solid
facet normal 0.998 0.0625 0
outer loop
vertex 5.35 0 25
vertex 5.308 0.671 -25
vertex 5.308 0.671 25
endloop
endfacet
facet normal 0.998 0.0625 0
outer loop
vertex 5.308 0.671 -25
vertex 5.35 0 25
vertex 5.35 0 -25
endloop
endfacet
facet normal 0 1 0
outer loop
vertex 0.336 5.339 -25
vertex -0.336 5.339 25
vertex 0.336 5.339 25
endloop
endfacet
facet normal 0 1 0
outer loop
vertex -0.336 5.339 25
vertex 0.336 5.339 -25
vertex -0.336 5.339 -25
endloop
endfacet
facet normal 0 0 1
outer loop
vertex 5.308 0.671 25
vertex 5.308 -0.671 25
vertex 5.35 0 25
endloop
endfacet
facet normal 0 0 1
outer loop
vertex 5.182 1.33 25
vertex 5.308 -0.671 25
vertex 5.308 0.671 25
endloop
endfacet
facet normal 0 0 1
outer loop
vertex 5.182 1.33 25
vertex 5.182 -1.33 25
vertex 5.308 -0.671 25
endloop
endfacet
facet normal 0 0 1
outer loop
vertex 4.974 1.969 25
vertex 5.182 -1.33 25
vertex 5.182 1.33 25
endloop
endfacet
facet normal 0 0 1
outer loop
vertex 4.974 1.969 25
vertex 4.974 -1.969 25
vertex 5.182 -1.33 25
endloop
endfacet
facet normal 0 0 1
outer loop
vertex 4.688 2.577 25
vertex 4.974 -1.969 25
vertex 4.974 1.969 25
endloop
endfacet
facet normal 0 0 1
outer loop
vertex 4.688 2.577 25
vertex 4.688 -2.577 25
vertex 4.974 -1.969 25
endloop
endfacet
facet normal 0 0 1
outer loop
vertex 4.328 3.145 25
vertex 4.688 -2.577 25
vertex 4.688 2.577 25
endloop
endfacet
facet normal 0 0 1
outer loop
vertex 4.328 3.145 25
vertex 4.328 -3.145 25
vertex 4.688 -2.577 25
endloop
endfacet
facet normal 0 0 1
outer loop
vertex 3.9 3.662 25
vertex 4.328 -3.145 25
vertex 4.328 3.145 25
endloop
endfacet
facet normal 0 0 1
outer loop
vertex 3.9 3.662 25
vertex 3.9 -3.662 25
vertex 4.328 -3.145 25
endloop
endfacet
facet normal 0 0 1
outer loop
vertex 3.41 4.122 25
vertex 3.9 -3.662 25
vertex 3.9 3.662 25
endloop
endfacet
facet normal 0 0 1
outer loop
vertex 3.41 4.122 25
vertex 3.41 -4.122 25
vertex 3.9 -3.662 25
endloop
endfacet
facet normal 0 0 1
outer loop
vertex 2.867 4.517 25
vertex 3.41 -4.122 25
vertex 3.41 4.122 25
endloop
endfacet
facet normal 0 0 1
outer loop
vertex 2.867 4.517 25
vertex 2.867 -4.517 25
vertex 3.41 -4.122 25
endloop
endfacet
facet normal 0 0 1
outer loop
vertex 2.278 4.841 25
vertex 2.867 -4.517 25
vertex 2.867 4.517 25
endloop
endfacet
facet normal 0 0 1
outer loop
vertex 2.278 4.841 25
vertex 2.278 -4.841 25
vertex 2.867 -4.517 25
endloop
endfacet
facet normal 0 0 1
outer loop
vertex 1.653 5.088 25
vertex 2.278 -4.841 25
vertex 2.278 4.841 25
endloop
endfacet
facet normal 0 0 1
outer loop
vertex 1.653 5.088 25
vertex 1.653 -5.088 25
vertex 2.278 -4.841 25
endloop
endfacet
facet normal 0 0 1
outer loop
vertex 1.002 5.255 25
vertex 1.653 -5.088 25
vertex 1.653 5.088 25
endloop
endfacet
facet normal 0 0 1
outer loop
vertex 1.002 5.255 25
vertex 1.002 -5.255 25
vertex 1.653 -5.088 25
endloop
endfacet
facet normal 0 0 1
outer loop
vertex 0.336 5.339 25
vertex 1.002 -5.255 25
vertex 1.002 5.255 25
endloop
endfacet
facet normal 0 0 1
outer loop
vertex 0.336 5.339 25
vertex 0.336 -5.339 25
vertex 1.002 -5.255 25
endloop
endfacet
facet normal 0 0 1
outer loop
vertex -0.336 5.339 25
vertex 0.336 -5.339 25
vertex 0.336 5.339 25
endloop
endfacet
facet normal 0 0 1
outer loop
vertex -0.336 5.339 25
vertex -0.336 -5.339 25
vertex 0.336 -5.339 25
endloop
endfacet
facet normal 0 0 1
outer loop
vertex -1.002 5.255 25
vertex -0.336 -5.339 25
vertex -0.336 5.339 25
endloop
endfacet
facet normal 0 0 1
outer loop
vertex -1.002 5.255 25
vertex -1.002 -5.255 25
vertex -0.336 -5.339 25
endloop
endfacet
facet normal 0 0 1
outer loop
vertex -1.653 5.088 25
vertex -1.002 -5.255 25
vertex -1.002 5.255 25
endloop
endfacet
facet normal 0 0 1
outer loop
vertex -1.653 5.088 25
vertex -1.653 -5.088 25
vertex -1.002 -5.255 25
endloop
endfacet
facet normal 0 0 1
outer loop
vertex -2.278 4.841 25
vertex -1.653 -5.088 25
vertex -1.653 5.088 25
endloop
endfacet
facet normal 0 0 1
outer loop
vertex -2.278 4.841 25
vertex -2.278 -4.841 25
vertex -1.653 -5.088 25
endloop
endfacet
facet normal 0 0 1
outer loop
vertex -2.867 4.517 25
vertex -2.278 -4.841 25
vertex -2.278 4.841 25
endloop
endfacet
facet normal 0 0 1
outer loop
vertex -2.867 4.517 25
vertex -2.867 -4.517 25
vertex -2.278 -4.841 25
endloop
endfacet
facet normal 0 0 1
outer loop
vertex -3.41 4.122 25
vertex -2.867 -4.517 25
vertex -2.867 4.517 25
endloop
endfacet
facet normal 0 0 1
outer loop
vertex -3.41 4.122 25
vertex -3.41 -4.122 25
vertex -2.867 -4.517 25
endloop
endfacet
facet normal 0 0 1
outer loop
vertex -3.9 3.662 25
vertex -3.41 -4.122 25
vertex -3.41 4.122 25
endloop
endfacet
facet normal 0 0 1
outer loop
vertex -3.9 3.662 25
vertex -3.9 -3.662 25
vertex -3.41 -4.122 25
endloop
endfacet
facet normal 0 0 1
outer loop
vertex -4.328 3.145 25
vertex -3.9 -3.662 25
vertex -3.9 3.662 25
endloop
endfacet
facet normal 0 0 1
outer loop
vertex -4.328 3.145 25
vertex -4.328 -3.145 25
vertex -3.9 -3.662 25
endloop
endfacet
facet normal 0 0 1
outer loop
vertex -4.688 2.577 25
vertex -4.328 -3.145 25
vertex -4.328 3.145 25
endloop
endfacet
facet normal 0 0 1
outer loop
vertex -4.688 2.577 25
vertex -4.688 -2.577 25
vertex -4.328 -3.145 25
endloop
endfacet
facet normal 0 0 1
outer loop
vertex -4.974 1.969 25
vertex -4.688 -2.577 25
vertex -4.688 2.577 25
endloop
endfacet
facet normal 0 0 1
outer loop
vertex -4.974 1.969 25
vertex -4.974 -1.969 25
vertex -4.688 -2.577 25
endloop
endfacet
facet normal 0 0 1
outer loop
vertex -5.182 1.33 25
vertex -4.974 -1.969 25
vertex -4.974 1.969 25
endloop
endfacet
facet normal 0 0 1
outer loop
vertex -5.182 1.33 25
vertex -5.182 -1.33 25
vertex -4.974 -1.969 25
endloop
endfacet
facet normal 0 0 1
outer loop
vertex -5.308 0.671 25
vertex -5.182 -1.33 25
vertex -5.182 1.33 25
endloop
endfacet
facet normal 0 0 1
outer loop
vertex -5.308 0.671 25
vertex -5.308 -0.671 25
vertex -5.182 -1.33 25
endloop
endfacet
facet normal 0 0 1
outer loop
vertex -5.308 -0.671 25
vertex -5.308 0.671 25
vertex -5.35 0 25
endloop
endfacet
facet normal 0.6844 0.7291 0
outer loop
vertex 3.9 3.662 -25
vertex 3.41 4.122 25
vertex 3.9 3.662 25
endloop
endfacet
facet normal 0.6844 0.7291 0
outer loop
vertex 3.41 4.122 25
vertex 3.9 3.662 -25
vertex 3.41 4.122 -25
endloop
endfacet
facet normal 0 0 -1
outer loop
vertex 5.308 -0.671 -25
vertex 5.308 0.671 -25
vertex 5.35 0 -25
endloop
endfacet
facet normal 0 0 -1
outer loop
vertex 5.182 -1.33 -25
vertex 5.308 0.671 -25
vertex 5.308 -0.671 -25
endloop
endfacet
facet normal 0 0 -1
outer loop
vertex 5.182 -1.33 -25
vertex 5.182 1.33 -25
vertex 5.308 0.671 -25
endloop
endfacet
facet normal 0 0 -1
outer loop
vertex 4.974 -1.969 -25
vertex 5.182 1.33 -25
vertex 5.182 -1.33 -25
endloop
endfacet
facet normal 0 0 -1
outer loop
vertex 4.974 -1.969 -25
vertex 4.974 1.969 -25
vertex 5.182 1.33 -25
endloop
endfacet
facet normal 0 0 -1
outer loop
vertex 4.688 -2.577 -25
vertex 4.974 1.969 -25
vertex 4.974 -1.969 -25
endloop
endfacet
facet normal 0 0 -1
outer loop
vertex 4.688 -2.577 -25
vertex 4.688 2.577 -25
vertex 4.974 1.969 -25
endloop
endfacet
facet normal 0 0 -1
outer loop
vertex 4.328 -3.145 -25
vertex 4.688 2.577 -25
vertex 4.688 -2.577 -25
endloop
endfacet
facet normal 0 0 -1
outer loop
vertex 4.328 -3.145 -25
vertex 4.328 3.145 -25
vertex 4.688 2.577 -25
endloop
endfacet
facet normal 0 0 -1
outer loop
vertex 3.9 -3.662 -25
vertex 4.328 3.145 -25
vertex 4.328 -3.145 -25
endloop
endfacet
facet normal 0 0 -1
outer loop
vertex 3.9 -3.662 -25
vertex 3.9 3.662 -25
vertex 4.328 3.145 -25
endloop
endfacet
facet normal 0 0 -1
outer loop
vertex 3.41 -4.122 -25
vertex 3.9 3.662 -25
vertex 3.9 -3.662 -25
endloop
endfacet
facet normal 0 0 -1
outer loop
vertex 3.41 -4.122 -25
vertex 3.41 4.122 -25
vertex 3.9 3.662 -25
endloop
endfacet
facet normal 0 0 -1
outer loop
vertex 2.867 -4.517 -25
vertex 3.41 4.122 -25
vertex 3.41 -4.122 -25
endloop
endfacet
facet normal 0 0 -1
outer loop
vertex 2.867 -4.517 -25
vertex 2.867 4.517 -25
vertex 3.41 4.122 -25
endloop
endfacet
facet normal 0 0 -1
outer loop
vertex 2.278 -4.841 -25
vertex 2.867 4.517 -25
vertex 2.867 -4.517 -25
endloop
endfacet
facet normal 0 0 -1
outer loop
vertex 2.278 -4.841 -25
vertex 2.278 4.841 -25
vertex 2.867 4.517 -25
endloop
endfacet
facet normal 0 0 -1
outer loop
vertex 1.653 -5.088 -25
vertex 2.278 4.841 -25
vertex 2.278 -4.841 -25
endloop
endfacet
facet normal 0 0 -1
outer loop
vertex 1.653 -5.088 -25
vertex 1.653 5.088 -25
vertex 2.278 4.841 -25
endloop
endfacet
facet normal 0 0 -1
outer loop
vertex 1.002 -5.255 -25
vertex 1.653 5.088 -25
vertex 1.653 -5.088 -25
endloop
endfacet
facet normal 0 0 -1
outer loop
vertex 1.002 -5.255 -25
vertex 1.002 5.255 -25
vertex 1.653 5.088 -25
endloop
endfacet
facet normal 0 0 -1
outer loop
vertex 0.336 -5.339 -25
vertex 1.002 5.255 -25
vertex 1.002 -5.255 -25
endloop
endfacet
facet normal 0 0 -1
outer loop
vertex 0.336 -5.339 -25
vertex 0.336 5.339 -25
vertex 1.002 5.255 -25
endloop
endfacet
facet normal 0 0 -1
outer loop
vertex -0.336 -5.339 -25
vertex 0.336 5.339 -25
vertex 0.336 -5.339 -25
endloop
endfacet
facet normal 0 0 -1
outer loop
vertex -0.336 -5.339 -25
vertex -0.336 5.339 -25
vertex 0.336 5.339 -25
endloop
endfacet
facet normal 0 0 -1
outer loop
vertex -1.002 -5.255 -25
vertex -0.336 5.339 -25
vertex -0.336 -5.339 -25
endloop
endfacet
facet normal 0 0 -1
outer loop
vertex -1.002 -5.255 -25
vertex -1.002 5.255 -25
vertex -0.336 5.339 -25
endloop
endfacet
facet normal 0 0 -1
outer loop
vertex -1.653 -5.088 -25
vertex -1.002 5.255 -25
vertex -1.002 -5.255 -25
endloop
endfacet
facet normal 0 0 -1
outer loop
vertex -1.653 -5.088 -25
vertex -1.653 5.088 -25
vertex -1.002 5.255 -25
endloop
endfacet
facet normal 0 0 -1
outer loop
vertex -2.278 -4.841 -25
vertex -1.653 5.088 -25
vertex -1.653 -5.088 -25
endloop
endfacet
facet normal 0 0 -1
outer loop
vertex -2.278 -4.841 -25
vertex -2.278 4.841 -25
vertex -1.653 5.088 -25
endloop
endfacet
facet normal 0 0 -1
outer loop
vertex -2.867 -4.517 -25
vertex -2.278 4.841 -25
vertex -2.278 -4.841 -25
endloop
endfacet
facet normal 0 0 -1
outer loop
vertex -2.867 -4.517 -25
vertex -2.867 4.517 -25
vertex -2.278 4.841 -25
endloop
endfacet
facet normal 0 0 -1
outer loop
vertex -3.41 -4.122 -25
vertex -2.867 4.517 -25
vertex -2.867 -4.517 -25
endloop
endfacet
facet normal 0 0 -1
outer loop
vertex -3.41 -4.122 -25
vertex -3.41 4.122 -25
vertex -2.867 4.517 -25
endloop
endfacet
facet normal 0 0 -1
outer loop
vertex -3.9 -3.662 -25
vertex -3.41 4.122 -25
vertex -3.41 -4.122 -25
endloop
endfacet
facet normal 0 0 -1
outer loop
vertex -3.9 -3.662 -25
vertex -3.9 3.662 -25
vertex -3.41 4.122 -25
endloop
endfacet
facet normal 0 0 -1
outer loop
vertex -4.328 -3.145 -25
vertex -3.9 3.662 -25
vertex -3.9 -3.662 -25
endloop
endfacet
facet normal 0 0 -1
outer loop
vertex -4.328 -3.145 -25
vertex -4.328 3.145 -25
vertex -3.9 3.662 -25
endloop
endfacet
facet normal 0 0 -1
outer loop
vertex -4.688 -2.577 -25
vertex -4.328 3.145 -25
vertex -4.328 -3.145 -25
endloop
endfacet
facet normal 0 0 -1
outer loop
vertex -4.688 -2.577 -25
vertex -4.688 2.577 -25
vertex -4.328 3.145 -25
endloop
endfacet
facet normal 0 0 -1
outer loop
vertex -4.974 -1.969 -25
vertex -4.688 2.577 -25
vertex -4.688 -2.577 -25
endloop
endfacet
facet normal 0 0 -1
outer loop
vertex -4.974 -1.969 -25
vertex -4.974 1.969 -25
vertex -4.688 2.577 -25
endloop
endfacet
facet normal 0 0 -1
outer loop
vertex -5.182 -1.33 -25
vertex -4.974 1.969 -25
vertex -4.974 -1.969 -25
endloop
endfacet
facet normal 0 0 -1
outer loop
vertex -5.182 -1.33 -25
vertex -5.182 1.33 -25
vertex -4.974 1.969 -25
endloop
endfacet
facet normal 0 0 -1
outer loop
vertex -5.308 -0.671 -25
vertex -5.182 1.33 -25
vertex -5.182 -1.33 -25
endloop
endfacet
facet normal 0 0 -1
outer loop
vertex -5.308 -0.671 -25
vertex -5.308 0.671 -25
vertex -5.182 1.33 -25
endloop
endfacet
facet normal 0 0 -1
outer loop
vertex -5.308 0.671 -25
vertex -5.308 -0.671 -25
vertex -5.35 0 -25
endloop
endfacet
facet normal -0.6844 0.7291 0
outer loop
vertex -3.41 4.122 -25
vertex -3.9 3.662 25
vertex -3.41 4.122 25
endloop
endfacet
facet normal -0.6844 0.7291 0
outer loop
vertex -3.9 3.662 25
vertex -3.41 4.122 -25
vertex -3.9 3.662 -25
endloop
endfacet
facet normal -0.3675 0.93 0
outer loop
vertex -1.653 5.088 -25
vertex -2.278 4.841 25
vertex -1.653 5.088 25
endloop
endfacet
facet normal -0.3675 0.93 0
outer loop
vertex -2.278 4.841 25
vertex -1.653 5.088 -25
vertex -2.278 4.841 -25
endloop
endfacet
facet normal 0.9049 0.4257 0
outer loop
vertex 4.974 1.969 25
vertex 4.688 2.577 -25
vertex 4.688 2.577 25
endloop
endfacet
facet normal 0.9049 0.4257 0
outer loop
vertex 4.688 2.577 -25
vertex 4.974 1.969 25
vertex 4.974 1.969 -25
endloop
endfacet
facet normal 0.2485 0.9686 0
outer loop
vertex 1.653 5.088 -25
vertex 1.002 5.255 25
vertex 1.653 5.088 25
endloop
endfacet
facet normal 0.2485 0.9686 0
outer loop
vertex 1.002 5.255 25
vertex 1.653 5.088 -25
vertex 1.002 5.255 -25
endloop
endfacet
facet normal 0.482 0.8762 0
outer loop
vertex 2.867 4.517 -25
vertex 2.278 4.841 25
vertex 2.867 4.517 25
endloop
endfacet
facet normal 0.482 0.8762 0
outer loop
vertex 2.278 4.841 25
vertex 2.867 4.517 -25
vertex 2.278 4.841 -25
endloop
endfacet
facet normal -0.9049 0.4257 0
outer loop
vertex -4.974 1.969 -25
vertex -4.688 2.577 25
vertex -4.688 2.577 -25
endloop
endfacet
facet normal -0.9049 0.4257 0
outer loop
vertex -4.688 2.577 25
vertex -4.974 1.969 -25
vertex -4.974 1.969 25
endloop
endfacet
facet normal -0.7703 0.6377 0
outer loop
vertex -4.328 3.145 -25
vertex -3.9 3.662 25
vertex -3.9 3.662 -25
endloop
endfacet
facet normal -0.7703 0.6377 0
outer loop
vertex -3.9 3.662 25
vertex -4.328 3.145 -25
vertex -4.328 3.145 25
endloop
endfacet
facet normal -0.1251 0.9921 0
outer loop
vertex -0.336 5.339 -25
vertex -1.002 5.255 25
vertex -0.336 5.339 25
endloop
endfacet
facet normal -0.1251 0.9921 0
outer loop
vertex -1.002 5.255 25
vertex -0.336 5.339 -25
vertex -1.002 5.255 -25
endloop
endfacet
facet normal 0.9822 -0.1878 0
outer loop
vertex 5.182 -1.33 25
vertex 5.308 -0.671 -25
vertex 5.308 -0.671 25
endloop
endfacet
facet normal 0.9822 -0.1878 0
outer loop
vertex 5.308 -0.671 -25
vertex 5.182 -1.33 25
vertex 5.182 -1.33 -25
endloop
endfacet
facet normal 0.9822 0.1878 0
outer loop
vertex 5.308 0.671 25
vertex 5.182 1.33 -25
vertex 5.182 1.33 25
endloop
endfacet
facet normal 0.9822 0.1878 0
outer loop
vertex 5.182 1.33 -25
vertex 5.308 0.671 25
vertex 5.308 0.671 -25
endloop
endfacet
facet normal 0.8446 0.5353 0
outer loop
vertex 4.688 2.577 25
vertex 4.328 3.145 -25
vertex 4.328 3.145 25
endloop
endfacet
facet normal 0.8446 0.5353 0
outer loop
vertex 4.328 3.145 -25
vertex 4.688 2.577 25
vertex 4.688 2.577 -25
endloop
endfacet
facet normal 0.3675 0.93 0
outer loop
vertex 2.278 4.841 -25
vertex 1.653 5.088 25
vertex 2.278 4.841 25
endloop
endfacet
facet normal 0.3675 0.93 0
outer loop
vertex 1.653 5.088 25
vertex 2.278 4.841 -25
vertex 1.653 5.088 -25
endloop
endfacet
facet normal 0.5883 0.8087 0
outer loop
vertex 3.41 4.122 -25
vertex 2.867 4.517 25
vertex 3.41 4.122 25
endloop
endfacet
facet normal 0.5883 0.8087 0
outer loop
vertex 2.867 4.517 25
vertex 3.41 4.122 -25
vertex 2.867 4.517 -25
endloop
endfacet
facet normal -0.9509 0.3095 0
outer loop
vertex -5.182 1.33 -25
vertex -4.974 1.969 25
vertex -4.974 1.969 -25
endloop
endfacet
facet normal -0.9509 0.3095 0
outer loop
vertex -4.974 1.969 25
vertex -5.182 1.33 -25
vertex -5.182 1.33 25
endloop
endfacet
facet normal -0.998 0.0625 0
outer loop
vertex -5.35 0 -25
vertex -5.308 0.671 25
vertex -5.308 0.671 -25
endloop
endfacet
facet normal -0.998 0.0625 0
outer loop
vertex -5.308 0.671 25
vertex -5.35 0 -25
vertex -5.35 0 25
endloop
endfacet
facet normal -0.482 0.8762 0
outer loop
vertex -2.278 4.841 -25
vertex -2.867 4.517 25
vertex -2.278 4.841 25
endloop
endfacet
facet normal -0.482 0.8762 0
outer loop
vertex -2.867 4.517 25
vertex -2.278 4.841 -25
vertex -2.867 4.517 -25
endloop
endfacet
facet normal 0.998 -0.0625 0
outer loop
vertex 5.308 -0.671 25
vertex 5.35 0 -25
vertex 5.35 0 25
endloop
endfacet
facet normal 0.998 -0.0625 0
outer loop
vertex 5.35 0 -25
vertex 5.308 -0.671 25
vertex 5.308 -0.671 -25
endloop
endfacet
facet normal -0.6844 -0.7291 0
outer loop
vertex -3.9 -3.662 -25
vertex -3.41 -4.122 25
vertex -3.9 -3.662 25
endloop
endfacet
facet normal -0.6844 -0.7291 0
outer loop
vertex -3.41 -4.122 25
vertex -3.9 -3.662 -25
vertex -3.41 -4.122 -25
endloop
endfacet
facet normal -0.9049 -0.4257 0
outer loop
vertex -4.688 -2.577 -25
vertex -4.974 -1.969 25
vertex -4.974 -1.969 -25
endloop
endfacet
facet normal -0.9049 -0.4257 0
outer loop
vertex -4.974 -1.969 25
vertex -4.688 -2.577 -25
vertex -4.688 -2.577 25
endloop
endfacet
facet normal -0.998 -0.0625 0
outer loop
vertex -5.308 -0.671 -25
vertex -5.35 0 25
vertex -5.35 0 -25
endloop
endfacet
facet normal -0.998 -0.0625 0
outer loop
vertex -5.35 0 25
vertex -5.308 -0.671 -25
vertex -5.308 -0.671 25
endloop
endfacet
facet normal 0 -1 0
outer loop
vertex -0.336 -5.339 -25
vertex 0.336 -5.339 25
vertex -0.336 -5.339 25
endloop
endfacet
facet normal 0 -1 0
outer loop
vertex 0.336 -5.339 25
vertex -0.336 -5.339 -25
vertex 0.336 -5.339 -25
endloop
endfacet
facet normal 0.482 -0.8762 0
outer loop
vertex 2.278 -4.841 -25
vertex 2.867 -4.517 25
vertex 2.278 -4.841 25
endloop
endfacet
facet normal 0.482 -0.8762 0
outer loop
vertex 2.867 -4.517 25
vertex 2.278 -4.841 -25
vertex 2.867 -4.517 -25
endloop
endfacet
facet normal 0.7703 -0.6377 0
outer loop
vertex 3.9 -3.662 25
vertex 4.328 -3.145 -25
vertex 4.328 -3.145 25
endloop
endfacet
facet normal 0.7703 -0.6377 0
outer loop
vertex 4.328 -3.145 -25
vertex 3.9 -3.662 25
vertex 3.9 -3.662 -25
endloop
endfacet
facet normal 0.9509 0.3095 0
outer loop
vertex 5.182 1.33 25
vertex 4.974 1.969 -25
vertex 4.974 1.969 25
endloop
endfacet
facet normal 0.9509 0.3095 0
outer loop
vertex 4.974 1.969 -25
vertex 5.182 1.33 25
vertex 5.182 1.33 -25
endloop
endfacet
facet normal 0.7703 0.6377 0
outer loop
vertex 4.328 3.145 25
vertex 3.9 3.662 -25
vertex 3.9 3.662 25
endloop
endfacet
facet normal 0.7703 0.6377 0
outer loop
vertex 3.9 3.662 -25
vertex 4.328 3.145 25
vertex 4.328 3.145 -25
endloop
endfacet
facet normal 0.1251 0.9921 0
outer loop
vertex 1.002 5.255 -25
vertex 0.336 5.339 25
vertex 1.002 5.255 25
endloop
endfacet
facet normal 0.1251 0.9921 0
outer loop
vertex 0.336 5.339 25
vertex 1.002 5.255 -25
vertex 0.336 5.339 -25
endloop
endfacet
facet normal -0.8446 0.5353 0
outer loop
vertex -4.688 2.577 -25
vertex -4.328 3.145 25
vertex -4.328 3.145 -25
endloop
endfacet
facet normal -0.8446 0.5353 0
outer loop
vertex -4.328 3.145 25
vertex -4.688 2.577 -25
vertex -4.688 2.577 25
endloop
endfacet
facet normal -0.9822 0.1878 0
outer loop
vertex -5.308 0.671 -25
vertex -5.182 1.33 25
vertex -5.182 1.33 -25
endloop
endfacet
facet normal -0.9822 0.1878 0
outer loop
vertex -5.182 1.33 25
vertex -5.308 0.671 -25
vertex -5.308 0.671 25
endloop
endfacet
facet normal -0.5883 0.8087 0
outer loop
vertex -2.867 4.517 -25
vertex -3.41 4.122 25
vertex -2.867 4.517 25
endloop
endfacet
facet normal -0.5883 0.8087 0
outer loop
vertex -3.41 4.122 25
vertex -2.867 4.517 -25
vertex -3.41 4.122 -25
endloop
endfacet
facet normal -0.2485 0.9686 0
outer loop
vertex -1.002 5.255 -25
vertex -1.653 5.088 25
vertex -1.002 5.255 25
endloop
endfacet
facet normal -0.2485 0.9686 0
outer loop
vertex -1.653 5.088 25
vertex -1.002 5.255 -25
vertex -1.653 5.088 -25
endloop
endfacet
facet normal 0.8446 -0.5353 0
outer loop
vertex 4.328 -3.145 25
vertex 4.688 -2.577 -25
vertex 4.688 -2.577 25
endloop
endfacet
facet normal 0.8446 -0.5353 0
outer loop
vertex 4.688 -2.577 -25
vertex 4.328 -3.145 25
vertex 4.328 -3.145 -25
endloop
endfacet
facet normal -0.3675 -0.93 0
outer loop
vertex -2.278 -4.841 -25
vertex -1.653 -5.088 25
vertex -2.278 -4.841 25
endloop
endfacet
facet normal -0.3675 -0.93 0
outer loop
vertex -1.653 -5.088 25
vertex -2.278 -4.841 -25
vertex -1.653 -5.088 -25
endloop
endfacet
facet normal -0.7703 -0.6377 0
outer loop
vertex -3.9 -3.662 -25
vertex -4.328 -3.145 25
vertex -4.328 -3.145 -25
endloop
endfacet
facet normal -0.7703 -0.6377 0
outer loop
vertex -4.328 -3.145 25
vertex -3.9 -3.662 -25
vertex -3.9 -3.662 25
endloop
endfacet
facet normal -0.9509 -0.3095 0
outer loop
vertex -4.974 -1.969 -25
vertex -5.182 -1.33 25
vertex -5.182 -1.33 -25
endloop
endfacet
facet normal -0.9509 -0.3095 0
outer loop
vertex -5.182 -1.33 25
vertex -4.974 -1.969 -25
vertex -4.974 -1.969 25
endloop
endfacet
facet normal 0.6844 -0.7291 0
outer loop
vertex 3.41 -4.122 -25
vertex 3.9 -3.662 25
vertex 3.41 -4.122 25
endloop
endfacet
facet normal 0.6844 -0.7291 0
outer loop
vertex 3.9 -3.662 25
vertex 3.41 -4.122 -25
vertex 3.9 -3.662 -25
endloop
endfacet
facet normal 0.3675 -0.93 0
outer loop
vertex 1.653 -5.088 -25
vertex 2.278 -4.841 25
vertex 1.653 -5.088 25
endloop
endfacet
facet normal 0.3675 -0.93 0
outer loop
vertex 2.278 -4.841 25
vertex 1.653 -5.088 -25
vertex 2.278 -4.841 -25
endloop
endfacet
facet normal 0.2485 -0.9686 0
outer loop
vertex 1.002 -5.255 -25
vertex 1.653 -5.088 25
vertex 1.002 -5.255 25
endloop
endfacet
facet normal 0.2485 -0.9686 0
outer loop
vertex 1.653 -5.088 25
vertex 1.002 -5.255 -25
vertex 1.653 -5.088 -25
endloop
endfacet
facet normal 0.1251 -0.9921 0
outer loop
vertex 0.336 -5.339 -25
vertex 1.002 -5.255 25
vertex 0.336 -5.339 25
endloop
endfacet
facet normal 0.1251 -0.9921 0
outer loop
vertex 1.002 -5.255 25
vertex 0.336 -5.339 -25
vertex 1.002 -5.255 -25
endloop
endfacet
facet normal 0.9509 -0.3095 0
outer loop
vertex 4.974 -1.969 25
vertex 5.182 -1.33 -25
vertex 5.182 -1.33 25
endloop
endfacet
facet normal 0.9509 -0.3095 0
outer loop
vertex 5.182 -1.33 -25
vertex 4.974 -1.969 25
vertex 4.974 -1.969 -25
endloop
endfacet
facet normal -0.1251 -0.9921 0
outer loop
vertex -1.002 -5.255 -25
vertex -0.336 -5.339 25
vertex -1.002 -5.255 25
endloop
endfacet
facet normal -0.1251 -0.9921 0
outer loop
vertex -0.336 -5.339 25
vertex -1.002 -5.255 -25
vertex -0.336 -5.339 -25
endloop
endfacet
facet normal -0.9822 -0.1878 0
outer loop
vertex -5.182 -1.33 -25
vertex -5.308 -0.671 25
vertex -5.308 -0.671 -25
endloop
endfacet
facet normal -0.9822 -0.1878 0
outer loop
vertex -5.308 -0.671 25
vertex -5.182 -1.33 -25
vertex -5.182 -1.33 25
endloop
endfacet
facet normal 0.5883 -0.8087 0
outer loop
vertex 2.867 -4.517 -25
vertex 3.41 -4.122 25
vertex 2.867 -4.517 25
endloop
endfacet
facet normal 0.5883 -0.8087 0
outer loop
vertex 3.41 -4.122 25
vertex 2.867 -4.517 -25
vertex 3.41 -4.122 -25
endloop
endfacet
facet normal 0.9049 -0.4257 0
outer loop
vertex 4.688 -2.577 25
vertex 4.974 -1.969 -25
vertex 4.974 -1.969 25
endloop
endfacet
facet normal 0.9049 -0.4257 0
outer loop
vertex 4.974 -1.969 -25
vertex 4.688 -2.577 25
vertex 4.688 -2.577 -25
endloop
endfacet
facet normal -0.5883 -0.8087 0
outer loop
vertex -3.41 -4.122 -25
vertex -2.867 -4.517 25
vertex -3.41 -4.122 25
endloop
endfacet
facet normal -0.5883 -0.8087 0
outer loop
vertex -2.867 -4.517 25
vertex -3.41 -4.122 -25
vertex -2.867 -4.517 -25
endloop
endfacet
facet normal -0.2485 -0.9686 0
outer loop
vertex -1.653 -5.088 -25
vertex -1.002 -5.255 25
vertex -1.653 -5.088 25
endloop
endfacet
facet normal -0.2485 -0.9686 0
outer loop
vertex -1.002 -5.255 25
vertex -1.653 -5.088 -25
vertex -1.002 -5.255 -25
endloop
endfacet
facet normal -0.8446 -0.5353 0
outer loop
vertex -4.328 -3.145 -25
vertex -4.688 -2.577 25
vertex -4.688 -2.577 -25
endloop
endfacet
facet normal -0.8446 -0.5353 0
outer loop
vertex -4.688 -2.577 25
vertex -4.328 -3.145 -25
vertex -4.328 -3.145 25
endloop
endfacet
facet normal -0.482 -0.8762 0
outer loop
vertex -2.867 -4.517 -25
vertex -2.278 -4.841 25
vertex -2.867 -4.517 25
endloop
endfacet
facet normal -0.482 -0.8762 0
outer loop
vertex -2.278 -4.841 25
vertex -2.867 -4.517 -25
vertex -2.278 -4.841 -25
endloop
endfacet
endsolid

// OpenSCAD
$fn = 50;


difference() {
	union() {
		translate(v = [0, 0, -25.0000000000]) {
			cylinder(h = 50, r = 5.3500000000);
		}
	}
	union() {
		translate(v = [0, 0, -100.0000000000]) {
			cylinder(h = 200, r = 0);
		}
	}
}
